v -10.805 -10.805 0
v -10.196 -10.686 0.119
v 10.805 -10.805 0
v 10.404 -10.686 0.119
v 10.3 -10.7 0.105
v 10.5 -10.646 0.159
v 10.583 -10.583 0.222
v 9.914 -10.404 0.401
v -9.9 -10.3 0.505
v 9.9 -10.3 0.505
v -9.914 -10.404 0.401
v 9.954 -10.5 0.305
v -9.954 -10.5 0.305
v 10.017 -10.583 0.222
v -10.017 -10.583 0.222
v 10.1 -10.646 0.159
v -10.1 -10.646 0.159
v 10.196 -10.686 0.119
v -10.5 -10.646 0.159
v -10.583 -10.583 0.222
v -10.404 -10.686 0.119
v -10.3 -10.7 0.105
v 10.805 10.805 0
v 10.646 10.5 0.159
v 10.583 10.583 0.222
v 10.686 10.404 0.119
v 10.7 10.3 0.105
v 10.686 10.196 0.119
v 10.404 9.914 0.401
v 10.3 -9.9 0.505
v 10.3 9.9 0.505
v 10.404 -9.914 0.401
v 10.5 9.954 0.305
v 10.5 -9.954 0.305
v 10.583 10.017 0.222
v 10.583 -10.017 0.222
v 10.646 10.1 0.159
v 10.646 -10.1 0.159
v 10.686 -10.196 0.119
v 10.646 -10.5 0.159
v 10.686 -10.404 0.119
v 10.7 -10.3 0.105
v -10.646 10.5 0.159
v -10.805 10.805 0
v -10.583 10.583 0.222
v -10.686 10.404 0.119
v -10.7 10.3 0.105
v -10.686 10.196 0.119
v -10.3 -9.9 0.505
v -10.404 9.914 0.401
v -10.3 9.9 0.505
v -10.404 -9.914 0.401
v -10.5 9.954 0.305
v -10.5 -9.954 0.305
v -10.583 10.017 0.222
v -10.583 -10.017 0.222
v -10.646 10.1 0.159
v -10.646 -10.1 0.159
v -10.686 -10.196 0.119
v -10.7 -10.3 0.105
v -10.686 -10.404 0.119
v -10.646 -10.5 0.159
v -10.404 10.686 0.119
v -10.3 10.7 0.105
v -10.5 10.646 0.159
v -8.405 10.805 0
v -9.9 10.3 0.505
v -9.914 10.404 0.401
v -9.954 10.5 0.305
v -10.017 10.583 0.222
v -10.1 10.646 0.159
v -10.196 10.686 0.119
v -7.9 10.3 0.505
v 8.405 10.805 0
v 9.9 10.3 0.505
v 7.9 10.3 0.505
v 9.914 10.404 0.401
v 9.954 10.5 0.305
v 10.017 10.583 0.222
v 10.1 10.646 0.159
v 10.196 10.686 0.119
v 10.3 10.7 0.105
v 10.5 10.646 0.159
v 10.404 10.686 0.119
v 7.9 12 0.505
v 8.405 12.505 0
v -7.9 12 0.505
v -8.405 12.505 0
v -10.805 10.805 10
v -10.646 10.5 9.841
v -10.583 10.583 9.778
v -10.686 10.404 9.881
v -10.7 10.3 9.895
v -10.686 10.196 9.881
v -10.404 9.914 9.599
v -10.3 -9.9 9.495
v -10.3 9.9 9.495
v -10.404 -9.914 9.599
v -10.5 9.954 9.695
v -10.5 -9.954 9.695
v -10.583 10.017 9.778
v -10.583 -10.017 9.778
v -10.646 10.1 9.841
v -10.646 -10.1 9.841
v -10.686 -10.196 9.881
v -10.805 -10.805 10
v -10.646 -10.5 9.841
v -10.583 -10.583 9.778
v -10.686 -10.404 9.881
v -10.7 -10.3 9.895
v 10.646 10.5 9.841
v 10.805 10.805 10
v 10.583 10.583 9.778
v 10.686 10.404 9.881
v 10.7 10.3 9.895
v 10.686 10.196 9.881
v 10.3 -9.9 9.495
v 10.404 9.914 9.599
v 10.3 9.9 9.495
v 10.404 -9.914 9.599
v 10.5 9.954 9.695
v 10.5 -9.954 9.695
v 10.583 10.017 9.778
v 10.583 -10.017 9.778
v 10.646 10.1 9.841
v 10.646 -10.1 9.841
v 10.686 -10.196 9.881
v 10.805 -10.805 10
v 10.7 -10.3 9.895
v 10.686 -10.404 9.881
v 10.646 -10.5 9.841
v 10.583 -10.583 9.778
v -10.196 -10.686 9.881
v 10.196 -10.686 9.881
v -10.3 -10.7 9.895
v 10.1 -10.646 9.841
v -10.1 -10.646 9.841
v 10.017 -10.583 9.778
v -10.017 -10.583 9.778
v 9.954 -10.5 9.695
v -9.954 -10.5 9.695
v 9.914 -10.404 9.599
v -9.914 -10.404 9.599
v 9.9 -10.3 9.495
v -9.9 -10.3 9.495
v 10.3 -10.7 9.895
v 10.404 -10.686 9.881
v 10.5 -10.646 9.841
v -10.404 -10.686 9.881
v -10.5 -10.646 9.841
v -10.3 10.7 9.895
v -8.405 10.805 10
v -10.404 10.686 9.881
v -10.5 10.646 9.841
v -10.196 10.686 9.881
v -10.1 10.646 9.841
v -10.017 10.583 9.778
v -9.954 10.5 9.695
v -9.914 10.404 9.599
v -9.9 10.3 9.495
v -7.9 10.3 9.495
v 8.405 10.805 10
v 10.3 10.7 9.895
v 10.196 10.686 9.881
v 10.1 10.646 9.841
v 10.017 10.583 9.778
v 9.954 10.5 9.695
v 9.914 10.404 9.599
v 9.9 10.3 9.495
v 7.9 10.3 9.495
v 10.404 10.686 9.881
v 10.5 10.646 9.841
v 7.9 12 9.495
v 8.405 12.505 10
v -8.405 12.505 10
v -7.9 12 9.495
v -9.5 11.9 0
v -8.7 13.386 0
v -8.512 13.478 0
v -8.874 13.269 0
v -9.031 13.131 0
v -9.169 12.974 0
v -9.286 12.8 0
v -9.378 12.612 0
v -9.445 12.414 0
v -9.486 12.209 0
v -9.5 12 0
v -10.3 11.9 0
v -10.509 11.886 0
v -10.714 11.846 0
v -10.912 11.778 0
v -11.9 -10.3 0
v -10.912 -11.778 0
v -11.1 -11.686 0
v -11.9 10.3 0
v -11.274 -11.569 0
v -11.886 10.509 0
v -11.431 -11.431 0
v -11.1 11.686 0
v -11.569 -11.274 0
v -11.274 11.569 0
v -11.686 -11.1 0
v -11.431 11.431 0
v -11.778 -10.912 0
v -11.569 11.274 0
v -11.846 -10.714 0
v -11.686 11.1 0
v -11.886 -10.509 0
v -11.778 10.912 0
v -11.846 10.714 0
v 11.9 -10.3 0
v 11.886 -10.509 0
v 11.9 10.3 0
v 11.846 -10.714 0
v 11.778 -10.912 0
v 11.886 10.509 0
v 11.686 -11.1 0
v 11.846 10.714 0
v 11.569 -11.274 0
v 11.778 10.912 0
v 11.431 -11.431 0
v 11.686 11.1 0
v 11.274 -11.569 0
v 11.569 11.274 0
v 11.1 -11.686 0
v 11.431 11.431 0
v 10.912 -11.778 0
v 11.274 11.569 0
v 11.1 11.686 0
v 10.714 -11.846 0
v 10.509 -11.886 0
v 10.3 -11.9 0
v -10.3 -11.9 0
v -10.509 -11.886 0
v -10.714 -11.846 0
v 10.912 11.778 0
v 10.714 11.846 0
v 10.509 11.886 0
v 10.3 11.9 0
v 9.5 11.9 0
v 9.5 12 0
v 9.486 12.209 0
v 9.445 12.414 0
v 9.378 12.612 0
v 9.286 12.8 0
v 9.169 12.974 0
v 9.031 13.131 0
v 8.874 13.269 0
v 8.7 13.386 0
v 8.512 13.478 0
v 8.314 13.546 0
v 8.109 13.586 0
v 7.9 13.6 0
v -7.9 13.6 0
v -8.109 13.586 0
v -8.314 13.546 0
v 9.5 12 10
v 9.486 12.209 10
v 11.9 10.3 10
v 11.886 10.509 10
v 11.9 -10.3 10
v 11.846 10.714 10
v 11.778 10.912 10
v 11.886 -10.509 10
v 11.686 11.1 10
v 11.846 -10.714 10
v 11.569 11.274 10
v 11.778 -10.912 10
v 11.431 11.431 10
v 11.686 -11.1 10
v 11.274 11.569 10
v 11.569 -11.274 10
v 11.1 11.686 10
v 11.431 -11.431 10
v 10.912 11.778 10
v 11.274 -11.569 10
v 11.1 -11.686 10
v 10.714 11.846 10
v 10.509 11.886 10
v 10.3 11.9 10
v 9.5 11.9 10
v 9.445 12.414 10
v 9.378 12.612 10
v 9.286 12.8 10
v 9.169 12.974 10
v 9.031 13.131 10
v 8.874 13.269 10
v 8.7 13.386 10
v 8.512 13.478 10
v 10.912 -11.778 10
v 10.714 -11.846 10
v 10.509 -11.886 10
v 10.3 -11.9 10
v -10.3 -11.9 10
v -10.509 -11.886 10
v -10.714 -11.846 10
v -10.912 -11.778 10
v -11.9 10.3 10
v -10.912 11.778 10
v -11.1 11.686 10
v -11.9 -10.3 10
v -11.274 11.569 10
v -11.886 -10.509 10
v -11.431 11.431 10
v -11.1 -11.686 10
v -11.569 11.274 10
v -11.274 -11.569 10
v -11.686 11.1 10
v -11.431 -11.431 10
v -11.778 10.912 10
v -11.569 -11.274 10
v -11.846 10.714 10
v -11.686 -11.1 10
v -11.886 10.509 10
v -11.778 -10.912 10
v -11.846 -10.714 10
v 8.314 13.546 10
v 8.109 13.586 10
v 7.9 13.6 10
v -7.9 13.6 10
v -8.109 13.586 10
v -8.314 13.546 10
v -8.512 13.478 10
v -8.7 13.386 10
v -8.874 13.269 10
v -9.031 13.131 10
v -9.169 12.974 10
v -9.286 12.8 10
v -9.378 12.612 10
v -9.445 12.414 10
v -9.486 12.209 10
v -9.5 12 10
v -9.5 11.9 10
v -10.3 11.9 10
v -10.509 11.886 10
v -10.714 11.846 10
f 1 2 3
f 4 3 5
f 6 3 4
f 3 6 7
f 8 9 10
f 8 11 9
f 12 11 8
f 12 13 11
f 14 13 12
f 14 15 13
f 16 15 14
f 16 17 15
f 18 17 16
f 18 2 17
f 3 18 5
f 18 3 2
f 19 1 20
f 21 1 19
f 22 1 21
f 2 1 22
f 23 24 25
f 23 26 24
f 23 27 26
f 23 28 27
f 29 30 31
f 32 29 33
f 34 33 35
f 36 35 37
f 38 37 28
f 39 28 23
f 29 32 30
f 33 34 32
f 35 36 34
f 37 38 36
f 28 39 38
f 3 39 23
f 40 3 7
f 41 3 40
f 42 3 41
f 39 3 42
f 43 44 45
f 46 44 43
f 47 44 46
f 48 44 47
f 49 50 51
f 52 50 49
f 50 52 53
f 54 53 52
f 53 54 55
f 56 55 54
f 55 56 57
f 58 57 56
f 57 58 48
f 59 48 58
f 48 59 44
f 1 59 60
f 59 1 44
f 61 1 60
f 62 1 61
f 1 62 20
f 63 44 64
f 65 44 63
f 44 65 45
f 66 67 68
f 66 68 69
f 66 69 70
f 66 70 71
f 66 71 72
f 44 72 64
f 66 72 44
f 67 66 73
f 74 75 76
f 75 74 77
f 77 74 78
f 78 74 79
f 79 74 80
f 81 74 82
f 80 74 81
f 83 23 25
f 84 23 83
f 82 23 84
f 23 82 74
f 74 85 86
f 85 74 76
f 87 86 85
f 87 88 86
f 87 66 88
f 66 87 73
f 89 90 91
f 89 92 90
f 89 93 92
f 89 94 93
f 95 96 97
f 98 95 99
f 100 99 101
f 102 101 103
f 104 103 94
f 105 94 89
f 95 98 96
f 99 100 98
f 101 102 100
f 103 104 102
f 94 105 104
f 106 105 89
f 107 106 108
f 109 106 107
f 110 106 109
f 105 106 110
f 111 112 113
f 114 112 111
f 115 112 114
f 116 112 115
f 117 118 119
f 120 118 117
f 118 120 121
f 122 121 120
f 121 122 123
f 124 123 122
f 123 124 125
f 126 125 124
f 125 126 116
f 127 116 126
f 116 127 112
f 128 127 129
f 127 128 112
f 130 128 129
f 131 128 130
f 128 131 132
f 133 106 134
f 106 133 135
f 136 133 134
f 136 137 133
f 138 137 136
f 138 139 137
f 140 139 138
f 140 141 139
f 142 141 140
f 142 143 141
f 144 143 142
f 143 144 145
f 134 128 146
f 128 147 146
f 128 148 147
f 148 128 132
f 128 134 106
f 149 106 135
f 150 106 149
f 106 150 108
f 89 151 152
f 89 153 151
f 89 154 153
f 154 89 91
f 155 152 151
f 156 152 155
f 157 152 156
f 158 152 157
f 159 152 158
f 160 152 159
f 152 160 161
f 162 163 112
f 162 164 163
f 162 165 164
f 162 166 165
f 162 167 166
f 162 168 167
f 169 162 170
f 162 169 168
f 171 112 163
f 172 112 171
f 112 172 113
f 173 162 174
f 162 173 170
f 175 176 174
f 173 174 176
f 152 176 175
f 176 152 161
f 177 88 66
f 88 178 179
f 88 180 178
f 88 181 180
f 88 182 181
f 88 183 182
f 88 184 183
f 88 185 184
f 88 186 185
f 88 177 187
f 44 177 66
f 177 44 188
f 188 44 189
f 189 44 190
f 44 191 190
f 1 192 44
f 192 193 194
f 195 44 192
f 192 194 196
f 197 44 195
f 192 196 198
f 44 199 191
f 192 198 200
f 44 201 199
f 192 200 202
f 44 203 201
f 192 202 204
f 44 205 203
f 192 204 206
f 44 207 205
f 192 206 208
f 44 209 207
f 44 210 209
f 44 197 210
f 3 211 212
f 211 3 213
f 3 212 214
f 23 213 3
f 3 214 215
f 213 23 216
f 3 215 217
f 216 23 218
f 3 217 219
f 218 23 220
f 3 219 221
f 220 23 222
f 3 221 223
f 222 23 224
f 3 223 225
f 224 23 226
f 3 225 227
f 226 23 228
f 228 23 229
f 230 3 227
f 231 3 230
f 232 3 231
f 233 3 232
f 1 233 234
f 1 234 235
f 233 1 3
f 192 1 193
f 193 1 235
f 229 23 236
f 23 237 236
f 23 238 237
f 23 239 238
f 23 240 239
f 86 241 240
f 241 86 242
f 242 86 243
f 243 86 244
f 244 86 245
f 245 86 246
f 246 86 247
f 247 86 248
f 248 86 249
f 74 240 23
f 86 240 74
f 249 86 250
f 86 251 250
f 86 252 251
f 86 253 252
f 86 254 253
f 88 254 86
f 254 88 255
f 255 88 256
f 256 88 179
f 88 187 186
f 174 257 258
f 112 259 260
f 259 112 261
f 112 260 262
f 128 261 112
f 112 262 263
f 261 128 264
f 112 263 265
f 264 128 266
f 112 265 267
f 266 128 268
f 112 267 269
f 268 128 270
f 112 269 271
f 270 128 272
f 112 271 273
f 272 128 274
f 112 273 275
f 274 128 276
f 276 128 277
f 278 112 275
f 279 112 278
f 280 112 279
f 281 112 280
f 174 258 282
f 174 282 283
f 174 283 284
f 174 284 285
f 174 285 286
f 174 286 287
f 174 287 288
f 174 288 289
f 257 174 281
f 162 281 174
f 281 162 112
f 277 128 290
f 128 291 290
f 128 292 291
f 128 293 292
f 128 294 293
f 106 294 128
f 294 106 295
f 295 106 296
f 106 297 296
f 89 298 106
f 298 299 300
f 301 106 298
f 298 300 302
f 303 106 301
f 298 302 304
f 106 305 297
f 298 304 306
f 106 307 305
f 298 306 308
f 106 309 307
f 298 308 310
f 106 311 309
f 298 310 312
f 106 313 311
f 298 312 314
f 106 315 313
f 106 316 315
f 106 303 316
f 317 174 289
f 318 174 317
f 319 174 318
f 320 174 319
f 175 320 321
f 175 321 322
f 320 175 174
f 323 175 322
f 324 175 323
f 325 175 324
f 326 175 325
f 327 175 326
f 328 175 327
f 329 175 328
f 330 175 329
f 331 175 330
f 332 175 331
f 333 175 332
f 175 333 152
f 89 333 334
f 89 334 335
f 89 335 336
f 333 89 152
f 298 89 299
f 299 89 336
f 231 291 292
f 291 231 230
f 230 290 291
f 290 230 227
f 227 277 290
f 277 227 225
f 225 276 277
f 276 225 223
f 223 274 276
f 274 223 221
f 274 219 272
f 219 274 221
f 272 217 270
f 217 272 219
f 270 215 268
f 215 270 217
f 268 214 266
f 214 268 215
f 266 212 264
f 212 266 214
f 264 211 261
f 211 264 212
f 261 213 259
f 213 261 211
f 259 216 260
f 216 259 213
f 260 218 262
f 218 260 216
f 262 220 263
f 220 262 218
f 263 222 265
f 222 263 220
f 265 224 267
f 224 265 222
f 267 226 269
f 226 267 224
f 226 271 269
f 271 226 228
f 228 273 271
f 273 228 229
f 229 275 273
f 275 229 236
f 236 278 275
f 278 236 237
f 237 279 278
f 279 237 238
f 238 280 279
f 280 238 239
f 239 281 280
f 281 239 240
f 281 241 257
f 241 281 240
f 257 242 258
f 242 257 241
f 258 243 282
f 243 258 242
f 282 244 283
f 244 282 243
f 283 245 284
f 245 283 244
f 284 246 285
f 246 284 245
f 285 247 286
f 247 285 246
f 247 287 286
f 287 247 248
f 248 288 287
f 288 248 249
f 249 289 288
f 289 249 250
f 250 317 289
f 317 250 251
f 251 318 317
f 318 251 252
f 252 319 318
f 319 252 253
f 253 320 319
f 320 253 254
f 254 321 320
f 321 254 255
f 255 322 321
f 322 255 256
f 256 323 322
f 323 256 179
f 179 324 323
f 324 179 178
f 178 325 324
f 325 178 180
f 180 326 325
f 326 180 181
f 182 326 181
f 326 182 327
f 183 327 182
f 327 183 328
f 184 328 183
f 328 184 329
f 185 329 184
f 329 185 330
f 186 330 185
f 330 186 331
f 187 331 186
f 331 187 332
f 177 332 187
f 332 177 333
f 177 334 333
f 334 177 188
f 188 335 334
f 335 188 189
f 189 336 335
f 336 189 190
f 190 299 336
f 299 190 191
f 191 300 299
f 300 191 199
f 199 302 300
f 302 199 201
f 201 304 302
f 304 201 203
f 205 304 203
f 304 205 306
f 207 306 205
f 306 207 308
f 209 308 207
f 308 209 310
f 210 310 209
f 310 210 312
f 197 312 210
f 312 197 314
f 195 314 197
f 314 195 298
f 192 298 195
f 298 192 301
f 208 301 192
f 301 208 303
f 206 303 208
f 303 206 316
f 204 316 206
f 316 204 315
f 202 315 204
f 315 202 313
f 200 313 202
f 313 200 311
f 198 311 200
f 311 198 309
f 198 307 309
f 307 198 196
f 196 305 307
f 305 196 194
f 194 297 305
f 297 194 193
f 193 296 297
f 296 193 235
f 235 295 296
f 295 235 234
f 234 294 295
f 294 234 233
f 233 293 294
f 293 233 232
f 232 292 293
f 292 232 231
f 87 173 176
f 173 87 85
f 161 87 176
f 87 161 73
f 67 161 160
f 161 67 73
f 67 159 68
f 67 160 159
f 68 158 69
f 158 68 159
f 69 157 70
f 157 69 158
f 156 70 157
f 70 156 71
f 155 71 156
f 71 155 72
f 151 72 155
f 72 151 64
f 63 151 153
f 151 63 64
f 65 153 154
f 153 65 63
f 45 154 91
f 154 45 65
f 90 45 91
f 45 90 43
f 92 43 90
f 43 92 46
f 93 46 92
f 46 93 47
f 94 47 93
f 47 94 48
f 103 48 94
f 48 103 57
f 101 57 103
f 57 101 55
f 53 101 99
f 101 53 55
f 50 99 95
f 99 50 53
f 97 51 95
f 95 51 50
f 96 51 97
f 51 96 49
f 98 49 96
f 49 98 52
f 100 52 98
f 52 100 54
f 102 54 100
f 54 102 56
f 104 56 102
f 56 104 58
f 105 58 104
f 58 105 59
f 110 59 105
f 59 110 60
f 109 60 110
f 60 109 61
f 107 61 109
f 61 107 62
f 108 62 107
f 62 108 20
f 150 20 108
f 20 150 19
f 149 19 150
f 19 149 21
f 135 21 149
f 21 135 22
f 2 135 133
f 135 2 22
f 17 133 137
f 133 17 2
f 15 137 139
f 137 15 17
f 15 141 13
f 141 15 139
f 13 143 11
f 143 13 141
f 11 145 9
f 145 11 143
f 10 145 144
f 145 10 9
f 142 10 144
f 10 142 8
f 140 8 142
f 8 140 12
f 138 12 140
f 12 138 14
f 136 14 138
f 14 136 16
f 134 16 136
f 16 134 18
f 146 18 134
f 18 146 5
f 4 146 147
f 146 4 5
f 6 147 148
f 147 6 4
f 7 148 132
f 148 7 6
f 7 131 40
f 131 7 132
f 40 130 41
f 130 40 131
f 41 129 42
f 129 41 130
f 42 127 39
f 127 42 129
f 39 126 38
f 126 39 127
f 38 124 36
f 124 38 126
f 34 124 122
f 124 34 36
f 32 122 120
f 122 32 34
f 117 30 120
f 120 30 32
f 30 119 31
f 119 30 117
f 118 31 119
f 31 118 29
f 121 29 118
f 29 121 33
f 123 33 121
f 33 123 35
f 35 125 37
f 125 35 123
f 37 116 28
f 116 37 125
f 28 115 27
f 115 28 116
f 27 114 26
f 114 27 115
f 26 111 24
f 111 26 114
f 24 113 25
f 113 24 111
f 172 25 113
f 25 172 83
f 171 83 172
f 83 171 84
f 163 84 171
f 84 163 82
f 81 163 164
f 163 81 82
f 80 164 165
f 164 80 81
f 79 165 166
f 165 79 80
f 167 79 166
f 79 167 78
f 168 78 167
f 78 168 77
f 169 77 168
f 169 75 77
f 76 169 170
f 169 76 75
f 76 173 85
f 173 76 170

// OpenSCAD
// file: vslot-2020.scad
// OpenBuilds V-Slot 20x20, millimetres.
// Source: ../../datasheets/openbuilds-vslot-20x20.pdf, page 1.
// Open directly for a short inspection sample; `use` for library modules.
sample_length = 60;
section_only = false;

module vslot_2020_profile(corner_radius=0.5, centre_notch=0.2) {
    // Dimensioned features from drawing.
    half_size = 10;
    mouth_half = 9.16/2;
    throat_half = 6.25/2;
    channel_half = 11/2;
    shoulder_y = half_size - 1.80;
    floor_y = shoulder_y - 4.30;
    // 90-degree V: each face has a 45-degree slope.
    throat_y = half_size - (mouth_half-throat_half);
    // Adjacent diagonal cavity walls straddle y=x. Their normal
    // separation is the specified 1.50 mm web thickness.
    diagonal_offset = 1.50/sqrt(2);
    channel_knee_y = channel_half + diagonal_offset;
    floor_half = floor_y - diagonal_offset;

    // Corner radius and tiny floor-centre notch are visually estimated:
    // the PDF depicts them but does not dimension them.
    difference() {
        offset(r=corner_radius,$fn=24)
            square([20-2*corner_radius,20-2*corner_radius],center=true);
        circle(d=4.20,$fn=64);
        for(a=[0:90:270]) rotate(a)
            polygon([
                [-mouth_half,11], [mouth_half,11],
                [mouth_half,half_size], [throat_half,throat_y],
                [throat_half,shoulder_y], [channel_half,shoulder_y],
                [channel_half,channel_knee_y], [floor_half,floor_y],
                [centre_notch,floor_y], [0,floor_y-centre_notch],
                [-centre_notch,floor_y], [-floor_half,floor_y],
                [-channel_half,channel_knee_y], [-channel_half,shoulder_y],
                [-throat_half,shoulder_y], [-throat_half,throat_y],
                [-mouth_half,half_size]
            ]);
    }
}

module vslot_2020(length=500) {
    assert(length>0,"Rail length must be positive");
    linear_extrude(height=length,convexity=10) vslot_2020_profile();
}

if(section_only) vslot_2020_profile();
else color([0.66,0.71,0.75]) vslot_2020(sample_length);
// main file
// Strip collar: a thin band round the gantry 2020 that holds Matt's steel
// strip, 2 x 15.5, flat against one face of the rail and running along it
// (Matt, 2026-09-27). The strip is what the magnetic Olight sticks to.
//
// The band is the rail's section plus a bump over one face, and the bump is
// the strip's pocket. With floor_t = 0 the pocket is open to the rail: the
// strip lies on the aluminium, on the two flats either side of the V mouth
// (3.2 mm each), and pushing it in pulls the band tight round the rail. So
// one push fit holds both, and with the strip out the band slides along the
// rail to where it is wanted. floor_t > 0 puts a wall between strip and rail
// and makes the two fits separate.
//
// The band is square, so the strip goes on whichever face the collar is
// turned to. It stands proud of the rail all round, so it lives outboard of
// the carriage and stops the rail's travel at that end.
//
// Fits are what this printer has shown: 0.15 a side was very tight on the
// eccentric collars and 0.30 a side went on hard in the base gauge. The band
// is thin and gives, so it takes the tight end of both.
//
// Printed standing on its section, as drawn: every wall is vertical. The bore
// and the pocket are chamfered at both ends, which is the strip's lead-in and
// clears elephant's foot on the bed end.
use <vslot-2020.scad>
rail        = 20;
len         = 10;      // along the rail
wall        = 1.6;
fit         = 0.30;    // a side, band on the rail, across the strip's width
strip_w     = 15.5;
strip_t     = 2.0;
strip_fit   = 0.15;    // a side, the push fit
floor_t     = 0;       // 0: strip against the rail. Otherwise a wall this thick between them
relief_r    = 0.4;     // at the bore's corners, where a printed corner bulges
lead_in     = 0.5;     // chamfer on the bore and pocket, both ends
show_context = false;  // rail stub and strip; preview only
$fn = 48;

half     = rail/2;
bore     = rail + 2*fit;
pocket_w = strip_w + 2*strip_fit;
open     = floor_t == 0;
// The pocket in y. Open, the stack is rail plus strip with strip_fit a side
// over the two, measured from the band's far wall. Closed, it is the strip
// alone above its floor.
pocket_y0 = open ? half : bore/2 + floor_t;
pocket_y1 = open ? -bore/2 + rail + strip_t + 2*strip_fit
                 : pocket_y0 + strip_t + 2*strip_fit;
shoulder = (bore - pocket_w)/2;
volume   = len*((bore + 2*wall)*(bore + 2*wall) - bore*bore
           + (pocket_w + 2*wall)*(pocket_y1 - bore/2) - pocket_w*(pocket_y1 - max(pocket_y0, bore/2)))/1000;

assert(pocket_w < bore, "strip wider than the rail's face");
assert(pocket_y1 > bore/2 + 0.5, "no pocket left above the bore");
assert(wall - relief_r*0.42 >= 1.0, "corner relief leaves too little wall");
assert(wall - lead_in >= 1.0, "lead-in leaves too little wall at the ends");
assert(2*lead_in < len, "lead-ins meet");
echo(str("collar ", bore + 2*wall, " x ", pocket_y1 + wall + bore/2 + wall, " x ", len,
         ", pocket ", pocket_w, " x ", pocket_y1 - pocket_y0, open ? " open to the rail" : " closed",
         ", shoulders ", shoulder, ", about ", volume, " cm3"));

module bore_2d(d=0)   { square(bore + 2*d, center=true); }
module pocket_2d(d=0) {
    translate([-pocket_w/2 - d, pocket_y0 - (open ? 0 : d)])
        square([pocket_w + 2*d, pocket_y1 - pocket_y0 + (open ? d : 2*d)]);
}
module outline_2d() {
    offset(r=wall) union() {
        bore_2d();
        translate([-pocket_w/2, 0]) square([pocket_w, pocket_y1]);
    }
}
module reliefs_2d() {
    for(x=[-1,1], y=[-1,1]) translate([x*bore/2, y*bore/2]) circle(r=relief_r, $fn=24);
}
// Chamfer on a convex opening at the end z, opening outward.
module lead(z, up) {
    s = up ? 1 : -1;
    translate([0,0,z]) hull() {
        translate([0,0,-s*lead_in]) linear_extrude(0.01, center=true) children();
        translate([0,0, s*0.5]) linear_extrude(0.01, center=true) offset(delta=lead_in + 0.5) children();
    }
}

module strip_collar() {
    difference() {
        linear_extrude(len) outline_2d();
        translate([0,0,-1]) linear_extrude(len + 2) { bore_2d(); pocket_2d(); reliefs_2d(); }
        for(e=[[0, false], [len, true]]) {
            lead(e[0], e[1]) bore_2d();
            lead(e[0], e[1]) pocket_2d();
        }
    }
}

strip_collar();

if(show_context) %union() {
    translate([0,0,-25]) color([0.66,0.71,0.75]) vslot_2020(60);
    y = open ? half : pocket_y0 + strip_fit;
    translate([-strip_w/2, y, -15]) color([0.45,0.47,0.5]) cube([strip_w, strip_t, 80]);
}
